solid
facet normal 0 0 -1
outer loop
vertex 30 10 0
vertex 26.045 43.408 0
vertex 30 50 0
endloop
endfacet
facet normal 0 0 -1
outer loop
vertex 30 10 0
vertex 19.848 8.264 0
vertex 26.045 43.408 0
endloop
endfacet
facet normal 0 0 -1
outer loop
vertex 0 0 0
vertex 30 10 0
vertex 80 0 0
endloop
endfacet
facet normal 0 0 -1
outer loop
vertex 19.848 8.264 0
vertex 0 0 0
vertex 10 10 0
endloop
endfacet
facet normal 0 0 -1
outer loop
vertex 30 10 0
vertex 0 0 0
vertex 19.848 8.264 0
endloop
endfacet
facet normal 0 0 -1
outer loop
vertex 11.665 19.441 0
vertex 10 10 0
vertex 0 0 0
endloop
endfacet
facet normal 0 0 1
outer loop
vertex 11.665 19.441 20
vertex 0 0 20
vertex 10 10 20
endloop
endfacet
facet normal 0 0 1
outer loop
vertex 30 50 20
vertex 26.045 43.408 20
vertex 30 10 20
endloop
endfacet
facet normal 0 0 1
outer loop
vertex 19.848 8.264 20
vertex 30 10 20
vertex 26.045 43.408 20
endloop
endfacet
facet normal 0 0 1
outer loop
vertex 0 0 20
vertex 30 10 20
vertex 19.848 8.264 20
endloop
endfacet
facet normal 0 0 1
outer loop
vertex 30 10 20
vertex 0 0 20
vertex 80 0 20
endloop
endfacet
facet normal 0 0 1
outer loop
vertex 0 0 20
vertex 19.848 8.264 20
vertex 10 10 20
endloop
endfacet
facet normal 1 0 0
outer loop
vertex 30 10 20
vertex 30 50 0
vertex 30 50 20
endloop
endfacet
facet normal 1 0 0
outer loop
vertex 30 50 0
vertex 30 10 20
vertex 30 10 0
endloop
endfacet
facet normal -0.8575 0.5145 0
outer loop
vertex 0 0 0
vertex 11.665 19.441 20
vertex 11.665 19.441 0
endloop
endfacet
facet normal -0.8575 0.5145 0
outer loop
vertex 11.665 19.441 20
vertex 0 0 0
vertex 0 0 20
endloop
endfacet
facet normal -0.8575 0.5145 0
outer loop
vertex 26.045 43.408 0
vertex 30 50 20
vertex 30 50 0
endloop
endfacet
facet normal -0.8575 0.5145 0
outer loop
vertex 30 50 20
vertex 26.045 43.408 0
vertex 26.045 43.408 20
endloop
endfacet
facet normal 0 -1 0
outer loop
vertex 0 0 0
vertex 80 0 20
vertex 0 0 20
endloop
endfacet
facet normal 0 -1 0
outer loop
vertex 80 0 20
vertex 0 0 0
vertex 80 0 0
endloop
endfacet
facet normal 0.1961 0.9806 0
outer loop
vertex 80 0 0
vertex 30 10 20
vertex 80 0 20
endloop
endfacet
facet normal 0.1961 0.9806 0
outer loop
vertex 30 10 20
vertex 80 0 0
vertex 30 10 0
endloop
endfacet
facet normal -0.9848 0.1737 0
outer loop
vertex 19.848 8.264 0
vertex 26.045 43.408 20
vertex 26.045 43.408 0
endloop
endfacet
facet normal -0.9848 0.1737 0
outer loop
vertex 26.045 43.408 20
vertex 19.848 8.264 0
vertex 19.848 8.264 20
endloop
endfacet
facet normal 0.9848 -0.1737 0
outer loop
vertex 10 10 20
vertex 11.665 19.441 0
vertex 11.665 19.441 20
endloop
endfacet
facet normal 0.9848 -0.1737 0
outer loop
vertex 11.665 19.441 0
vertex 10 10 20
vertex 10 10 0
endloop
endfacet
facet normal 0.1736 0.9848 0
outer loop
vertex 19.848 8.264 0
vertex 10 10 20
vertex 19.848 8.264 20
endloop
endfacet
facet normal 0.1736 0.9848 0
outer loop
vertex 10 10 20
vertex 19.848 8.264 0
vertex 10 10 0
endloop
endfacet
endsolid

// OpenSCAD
difference() {
    linear_extrude(20) polygon([[0,0],[80,0],[30,10],[30,50]]);
    translate([10,10,-5]) rotate([0,0,-10]) cube([10,100,30]);
}
